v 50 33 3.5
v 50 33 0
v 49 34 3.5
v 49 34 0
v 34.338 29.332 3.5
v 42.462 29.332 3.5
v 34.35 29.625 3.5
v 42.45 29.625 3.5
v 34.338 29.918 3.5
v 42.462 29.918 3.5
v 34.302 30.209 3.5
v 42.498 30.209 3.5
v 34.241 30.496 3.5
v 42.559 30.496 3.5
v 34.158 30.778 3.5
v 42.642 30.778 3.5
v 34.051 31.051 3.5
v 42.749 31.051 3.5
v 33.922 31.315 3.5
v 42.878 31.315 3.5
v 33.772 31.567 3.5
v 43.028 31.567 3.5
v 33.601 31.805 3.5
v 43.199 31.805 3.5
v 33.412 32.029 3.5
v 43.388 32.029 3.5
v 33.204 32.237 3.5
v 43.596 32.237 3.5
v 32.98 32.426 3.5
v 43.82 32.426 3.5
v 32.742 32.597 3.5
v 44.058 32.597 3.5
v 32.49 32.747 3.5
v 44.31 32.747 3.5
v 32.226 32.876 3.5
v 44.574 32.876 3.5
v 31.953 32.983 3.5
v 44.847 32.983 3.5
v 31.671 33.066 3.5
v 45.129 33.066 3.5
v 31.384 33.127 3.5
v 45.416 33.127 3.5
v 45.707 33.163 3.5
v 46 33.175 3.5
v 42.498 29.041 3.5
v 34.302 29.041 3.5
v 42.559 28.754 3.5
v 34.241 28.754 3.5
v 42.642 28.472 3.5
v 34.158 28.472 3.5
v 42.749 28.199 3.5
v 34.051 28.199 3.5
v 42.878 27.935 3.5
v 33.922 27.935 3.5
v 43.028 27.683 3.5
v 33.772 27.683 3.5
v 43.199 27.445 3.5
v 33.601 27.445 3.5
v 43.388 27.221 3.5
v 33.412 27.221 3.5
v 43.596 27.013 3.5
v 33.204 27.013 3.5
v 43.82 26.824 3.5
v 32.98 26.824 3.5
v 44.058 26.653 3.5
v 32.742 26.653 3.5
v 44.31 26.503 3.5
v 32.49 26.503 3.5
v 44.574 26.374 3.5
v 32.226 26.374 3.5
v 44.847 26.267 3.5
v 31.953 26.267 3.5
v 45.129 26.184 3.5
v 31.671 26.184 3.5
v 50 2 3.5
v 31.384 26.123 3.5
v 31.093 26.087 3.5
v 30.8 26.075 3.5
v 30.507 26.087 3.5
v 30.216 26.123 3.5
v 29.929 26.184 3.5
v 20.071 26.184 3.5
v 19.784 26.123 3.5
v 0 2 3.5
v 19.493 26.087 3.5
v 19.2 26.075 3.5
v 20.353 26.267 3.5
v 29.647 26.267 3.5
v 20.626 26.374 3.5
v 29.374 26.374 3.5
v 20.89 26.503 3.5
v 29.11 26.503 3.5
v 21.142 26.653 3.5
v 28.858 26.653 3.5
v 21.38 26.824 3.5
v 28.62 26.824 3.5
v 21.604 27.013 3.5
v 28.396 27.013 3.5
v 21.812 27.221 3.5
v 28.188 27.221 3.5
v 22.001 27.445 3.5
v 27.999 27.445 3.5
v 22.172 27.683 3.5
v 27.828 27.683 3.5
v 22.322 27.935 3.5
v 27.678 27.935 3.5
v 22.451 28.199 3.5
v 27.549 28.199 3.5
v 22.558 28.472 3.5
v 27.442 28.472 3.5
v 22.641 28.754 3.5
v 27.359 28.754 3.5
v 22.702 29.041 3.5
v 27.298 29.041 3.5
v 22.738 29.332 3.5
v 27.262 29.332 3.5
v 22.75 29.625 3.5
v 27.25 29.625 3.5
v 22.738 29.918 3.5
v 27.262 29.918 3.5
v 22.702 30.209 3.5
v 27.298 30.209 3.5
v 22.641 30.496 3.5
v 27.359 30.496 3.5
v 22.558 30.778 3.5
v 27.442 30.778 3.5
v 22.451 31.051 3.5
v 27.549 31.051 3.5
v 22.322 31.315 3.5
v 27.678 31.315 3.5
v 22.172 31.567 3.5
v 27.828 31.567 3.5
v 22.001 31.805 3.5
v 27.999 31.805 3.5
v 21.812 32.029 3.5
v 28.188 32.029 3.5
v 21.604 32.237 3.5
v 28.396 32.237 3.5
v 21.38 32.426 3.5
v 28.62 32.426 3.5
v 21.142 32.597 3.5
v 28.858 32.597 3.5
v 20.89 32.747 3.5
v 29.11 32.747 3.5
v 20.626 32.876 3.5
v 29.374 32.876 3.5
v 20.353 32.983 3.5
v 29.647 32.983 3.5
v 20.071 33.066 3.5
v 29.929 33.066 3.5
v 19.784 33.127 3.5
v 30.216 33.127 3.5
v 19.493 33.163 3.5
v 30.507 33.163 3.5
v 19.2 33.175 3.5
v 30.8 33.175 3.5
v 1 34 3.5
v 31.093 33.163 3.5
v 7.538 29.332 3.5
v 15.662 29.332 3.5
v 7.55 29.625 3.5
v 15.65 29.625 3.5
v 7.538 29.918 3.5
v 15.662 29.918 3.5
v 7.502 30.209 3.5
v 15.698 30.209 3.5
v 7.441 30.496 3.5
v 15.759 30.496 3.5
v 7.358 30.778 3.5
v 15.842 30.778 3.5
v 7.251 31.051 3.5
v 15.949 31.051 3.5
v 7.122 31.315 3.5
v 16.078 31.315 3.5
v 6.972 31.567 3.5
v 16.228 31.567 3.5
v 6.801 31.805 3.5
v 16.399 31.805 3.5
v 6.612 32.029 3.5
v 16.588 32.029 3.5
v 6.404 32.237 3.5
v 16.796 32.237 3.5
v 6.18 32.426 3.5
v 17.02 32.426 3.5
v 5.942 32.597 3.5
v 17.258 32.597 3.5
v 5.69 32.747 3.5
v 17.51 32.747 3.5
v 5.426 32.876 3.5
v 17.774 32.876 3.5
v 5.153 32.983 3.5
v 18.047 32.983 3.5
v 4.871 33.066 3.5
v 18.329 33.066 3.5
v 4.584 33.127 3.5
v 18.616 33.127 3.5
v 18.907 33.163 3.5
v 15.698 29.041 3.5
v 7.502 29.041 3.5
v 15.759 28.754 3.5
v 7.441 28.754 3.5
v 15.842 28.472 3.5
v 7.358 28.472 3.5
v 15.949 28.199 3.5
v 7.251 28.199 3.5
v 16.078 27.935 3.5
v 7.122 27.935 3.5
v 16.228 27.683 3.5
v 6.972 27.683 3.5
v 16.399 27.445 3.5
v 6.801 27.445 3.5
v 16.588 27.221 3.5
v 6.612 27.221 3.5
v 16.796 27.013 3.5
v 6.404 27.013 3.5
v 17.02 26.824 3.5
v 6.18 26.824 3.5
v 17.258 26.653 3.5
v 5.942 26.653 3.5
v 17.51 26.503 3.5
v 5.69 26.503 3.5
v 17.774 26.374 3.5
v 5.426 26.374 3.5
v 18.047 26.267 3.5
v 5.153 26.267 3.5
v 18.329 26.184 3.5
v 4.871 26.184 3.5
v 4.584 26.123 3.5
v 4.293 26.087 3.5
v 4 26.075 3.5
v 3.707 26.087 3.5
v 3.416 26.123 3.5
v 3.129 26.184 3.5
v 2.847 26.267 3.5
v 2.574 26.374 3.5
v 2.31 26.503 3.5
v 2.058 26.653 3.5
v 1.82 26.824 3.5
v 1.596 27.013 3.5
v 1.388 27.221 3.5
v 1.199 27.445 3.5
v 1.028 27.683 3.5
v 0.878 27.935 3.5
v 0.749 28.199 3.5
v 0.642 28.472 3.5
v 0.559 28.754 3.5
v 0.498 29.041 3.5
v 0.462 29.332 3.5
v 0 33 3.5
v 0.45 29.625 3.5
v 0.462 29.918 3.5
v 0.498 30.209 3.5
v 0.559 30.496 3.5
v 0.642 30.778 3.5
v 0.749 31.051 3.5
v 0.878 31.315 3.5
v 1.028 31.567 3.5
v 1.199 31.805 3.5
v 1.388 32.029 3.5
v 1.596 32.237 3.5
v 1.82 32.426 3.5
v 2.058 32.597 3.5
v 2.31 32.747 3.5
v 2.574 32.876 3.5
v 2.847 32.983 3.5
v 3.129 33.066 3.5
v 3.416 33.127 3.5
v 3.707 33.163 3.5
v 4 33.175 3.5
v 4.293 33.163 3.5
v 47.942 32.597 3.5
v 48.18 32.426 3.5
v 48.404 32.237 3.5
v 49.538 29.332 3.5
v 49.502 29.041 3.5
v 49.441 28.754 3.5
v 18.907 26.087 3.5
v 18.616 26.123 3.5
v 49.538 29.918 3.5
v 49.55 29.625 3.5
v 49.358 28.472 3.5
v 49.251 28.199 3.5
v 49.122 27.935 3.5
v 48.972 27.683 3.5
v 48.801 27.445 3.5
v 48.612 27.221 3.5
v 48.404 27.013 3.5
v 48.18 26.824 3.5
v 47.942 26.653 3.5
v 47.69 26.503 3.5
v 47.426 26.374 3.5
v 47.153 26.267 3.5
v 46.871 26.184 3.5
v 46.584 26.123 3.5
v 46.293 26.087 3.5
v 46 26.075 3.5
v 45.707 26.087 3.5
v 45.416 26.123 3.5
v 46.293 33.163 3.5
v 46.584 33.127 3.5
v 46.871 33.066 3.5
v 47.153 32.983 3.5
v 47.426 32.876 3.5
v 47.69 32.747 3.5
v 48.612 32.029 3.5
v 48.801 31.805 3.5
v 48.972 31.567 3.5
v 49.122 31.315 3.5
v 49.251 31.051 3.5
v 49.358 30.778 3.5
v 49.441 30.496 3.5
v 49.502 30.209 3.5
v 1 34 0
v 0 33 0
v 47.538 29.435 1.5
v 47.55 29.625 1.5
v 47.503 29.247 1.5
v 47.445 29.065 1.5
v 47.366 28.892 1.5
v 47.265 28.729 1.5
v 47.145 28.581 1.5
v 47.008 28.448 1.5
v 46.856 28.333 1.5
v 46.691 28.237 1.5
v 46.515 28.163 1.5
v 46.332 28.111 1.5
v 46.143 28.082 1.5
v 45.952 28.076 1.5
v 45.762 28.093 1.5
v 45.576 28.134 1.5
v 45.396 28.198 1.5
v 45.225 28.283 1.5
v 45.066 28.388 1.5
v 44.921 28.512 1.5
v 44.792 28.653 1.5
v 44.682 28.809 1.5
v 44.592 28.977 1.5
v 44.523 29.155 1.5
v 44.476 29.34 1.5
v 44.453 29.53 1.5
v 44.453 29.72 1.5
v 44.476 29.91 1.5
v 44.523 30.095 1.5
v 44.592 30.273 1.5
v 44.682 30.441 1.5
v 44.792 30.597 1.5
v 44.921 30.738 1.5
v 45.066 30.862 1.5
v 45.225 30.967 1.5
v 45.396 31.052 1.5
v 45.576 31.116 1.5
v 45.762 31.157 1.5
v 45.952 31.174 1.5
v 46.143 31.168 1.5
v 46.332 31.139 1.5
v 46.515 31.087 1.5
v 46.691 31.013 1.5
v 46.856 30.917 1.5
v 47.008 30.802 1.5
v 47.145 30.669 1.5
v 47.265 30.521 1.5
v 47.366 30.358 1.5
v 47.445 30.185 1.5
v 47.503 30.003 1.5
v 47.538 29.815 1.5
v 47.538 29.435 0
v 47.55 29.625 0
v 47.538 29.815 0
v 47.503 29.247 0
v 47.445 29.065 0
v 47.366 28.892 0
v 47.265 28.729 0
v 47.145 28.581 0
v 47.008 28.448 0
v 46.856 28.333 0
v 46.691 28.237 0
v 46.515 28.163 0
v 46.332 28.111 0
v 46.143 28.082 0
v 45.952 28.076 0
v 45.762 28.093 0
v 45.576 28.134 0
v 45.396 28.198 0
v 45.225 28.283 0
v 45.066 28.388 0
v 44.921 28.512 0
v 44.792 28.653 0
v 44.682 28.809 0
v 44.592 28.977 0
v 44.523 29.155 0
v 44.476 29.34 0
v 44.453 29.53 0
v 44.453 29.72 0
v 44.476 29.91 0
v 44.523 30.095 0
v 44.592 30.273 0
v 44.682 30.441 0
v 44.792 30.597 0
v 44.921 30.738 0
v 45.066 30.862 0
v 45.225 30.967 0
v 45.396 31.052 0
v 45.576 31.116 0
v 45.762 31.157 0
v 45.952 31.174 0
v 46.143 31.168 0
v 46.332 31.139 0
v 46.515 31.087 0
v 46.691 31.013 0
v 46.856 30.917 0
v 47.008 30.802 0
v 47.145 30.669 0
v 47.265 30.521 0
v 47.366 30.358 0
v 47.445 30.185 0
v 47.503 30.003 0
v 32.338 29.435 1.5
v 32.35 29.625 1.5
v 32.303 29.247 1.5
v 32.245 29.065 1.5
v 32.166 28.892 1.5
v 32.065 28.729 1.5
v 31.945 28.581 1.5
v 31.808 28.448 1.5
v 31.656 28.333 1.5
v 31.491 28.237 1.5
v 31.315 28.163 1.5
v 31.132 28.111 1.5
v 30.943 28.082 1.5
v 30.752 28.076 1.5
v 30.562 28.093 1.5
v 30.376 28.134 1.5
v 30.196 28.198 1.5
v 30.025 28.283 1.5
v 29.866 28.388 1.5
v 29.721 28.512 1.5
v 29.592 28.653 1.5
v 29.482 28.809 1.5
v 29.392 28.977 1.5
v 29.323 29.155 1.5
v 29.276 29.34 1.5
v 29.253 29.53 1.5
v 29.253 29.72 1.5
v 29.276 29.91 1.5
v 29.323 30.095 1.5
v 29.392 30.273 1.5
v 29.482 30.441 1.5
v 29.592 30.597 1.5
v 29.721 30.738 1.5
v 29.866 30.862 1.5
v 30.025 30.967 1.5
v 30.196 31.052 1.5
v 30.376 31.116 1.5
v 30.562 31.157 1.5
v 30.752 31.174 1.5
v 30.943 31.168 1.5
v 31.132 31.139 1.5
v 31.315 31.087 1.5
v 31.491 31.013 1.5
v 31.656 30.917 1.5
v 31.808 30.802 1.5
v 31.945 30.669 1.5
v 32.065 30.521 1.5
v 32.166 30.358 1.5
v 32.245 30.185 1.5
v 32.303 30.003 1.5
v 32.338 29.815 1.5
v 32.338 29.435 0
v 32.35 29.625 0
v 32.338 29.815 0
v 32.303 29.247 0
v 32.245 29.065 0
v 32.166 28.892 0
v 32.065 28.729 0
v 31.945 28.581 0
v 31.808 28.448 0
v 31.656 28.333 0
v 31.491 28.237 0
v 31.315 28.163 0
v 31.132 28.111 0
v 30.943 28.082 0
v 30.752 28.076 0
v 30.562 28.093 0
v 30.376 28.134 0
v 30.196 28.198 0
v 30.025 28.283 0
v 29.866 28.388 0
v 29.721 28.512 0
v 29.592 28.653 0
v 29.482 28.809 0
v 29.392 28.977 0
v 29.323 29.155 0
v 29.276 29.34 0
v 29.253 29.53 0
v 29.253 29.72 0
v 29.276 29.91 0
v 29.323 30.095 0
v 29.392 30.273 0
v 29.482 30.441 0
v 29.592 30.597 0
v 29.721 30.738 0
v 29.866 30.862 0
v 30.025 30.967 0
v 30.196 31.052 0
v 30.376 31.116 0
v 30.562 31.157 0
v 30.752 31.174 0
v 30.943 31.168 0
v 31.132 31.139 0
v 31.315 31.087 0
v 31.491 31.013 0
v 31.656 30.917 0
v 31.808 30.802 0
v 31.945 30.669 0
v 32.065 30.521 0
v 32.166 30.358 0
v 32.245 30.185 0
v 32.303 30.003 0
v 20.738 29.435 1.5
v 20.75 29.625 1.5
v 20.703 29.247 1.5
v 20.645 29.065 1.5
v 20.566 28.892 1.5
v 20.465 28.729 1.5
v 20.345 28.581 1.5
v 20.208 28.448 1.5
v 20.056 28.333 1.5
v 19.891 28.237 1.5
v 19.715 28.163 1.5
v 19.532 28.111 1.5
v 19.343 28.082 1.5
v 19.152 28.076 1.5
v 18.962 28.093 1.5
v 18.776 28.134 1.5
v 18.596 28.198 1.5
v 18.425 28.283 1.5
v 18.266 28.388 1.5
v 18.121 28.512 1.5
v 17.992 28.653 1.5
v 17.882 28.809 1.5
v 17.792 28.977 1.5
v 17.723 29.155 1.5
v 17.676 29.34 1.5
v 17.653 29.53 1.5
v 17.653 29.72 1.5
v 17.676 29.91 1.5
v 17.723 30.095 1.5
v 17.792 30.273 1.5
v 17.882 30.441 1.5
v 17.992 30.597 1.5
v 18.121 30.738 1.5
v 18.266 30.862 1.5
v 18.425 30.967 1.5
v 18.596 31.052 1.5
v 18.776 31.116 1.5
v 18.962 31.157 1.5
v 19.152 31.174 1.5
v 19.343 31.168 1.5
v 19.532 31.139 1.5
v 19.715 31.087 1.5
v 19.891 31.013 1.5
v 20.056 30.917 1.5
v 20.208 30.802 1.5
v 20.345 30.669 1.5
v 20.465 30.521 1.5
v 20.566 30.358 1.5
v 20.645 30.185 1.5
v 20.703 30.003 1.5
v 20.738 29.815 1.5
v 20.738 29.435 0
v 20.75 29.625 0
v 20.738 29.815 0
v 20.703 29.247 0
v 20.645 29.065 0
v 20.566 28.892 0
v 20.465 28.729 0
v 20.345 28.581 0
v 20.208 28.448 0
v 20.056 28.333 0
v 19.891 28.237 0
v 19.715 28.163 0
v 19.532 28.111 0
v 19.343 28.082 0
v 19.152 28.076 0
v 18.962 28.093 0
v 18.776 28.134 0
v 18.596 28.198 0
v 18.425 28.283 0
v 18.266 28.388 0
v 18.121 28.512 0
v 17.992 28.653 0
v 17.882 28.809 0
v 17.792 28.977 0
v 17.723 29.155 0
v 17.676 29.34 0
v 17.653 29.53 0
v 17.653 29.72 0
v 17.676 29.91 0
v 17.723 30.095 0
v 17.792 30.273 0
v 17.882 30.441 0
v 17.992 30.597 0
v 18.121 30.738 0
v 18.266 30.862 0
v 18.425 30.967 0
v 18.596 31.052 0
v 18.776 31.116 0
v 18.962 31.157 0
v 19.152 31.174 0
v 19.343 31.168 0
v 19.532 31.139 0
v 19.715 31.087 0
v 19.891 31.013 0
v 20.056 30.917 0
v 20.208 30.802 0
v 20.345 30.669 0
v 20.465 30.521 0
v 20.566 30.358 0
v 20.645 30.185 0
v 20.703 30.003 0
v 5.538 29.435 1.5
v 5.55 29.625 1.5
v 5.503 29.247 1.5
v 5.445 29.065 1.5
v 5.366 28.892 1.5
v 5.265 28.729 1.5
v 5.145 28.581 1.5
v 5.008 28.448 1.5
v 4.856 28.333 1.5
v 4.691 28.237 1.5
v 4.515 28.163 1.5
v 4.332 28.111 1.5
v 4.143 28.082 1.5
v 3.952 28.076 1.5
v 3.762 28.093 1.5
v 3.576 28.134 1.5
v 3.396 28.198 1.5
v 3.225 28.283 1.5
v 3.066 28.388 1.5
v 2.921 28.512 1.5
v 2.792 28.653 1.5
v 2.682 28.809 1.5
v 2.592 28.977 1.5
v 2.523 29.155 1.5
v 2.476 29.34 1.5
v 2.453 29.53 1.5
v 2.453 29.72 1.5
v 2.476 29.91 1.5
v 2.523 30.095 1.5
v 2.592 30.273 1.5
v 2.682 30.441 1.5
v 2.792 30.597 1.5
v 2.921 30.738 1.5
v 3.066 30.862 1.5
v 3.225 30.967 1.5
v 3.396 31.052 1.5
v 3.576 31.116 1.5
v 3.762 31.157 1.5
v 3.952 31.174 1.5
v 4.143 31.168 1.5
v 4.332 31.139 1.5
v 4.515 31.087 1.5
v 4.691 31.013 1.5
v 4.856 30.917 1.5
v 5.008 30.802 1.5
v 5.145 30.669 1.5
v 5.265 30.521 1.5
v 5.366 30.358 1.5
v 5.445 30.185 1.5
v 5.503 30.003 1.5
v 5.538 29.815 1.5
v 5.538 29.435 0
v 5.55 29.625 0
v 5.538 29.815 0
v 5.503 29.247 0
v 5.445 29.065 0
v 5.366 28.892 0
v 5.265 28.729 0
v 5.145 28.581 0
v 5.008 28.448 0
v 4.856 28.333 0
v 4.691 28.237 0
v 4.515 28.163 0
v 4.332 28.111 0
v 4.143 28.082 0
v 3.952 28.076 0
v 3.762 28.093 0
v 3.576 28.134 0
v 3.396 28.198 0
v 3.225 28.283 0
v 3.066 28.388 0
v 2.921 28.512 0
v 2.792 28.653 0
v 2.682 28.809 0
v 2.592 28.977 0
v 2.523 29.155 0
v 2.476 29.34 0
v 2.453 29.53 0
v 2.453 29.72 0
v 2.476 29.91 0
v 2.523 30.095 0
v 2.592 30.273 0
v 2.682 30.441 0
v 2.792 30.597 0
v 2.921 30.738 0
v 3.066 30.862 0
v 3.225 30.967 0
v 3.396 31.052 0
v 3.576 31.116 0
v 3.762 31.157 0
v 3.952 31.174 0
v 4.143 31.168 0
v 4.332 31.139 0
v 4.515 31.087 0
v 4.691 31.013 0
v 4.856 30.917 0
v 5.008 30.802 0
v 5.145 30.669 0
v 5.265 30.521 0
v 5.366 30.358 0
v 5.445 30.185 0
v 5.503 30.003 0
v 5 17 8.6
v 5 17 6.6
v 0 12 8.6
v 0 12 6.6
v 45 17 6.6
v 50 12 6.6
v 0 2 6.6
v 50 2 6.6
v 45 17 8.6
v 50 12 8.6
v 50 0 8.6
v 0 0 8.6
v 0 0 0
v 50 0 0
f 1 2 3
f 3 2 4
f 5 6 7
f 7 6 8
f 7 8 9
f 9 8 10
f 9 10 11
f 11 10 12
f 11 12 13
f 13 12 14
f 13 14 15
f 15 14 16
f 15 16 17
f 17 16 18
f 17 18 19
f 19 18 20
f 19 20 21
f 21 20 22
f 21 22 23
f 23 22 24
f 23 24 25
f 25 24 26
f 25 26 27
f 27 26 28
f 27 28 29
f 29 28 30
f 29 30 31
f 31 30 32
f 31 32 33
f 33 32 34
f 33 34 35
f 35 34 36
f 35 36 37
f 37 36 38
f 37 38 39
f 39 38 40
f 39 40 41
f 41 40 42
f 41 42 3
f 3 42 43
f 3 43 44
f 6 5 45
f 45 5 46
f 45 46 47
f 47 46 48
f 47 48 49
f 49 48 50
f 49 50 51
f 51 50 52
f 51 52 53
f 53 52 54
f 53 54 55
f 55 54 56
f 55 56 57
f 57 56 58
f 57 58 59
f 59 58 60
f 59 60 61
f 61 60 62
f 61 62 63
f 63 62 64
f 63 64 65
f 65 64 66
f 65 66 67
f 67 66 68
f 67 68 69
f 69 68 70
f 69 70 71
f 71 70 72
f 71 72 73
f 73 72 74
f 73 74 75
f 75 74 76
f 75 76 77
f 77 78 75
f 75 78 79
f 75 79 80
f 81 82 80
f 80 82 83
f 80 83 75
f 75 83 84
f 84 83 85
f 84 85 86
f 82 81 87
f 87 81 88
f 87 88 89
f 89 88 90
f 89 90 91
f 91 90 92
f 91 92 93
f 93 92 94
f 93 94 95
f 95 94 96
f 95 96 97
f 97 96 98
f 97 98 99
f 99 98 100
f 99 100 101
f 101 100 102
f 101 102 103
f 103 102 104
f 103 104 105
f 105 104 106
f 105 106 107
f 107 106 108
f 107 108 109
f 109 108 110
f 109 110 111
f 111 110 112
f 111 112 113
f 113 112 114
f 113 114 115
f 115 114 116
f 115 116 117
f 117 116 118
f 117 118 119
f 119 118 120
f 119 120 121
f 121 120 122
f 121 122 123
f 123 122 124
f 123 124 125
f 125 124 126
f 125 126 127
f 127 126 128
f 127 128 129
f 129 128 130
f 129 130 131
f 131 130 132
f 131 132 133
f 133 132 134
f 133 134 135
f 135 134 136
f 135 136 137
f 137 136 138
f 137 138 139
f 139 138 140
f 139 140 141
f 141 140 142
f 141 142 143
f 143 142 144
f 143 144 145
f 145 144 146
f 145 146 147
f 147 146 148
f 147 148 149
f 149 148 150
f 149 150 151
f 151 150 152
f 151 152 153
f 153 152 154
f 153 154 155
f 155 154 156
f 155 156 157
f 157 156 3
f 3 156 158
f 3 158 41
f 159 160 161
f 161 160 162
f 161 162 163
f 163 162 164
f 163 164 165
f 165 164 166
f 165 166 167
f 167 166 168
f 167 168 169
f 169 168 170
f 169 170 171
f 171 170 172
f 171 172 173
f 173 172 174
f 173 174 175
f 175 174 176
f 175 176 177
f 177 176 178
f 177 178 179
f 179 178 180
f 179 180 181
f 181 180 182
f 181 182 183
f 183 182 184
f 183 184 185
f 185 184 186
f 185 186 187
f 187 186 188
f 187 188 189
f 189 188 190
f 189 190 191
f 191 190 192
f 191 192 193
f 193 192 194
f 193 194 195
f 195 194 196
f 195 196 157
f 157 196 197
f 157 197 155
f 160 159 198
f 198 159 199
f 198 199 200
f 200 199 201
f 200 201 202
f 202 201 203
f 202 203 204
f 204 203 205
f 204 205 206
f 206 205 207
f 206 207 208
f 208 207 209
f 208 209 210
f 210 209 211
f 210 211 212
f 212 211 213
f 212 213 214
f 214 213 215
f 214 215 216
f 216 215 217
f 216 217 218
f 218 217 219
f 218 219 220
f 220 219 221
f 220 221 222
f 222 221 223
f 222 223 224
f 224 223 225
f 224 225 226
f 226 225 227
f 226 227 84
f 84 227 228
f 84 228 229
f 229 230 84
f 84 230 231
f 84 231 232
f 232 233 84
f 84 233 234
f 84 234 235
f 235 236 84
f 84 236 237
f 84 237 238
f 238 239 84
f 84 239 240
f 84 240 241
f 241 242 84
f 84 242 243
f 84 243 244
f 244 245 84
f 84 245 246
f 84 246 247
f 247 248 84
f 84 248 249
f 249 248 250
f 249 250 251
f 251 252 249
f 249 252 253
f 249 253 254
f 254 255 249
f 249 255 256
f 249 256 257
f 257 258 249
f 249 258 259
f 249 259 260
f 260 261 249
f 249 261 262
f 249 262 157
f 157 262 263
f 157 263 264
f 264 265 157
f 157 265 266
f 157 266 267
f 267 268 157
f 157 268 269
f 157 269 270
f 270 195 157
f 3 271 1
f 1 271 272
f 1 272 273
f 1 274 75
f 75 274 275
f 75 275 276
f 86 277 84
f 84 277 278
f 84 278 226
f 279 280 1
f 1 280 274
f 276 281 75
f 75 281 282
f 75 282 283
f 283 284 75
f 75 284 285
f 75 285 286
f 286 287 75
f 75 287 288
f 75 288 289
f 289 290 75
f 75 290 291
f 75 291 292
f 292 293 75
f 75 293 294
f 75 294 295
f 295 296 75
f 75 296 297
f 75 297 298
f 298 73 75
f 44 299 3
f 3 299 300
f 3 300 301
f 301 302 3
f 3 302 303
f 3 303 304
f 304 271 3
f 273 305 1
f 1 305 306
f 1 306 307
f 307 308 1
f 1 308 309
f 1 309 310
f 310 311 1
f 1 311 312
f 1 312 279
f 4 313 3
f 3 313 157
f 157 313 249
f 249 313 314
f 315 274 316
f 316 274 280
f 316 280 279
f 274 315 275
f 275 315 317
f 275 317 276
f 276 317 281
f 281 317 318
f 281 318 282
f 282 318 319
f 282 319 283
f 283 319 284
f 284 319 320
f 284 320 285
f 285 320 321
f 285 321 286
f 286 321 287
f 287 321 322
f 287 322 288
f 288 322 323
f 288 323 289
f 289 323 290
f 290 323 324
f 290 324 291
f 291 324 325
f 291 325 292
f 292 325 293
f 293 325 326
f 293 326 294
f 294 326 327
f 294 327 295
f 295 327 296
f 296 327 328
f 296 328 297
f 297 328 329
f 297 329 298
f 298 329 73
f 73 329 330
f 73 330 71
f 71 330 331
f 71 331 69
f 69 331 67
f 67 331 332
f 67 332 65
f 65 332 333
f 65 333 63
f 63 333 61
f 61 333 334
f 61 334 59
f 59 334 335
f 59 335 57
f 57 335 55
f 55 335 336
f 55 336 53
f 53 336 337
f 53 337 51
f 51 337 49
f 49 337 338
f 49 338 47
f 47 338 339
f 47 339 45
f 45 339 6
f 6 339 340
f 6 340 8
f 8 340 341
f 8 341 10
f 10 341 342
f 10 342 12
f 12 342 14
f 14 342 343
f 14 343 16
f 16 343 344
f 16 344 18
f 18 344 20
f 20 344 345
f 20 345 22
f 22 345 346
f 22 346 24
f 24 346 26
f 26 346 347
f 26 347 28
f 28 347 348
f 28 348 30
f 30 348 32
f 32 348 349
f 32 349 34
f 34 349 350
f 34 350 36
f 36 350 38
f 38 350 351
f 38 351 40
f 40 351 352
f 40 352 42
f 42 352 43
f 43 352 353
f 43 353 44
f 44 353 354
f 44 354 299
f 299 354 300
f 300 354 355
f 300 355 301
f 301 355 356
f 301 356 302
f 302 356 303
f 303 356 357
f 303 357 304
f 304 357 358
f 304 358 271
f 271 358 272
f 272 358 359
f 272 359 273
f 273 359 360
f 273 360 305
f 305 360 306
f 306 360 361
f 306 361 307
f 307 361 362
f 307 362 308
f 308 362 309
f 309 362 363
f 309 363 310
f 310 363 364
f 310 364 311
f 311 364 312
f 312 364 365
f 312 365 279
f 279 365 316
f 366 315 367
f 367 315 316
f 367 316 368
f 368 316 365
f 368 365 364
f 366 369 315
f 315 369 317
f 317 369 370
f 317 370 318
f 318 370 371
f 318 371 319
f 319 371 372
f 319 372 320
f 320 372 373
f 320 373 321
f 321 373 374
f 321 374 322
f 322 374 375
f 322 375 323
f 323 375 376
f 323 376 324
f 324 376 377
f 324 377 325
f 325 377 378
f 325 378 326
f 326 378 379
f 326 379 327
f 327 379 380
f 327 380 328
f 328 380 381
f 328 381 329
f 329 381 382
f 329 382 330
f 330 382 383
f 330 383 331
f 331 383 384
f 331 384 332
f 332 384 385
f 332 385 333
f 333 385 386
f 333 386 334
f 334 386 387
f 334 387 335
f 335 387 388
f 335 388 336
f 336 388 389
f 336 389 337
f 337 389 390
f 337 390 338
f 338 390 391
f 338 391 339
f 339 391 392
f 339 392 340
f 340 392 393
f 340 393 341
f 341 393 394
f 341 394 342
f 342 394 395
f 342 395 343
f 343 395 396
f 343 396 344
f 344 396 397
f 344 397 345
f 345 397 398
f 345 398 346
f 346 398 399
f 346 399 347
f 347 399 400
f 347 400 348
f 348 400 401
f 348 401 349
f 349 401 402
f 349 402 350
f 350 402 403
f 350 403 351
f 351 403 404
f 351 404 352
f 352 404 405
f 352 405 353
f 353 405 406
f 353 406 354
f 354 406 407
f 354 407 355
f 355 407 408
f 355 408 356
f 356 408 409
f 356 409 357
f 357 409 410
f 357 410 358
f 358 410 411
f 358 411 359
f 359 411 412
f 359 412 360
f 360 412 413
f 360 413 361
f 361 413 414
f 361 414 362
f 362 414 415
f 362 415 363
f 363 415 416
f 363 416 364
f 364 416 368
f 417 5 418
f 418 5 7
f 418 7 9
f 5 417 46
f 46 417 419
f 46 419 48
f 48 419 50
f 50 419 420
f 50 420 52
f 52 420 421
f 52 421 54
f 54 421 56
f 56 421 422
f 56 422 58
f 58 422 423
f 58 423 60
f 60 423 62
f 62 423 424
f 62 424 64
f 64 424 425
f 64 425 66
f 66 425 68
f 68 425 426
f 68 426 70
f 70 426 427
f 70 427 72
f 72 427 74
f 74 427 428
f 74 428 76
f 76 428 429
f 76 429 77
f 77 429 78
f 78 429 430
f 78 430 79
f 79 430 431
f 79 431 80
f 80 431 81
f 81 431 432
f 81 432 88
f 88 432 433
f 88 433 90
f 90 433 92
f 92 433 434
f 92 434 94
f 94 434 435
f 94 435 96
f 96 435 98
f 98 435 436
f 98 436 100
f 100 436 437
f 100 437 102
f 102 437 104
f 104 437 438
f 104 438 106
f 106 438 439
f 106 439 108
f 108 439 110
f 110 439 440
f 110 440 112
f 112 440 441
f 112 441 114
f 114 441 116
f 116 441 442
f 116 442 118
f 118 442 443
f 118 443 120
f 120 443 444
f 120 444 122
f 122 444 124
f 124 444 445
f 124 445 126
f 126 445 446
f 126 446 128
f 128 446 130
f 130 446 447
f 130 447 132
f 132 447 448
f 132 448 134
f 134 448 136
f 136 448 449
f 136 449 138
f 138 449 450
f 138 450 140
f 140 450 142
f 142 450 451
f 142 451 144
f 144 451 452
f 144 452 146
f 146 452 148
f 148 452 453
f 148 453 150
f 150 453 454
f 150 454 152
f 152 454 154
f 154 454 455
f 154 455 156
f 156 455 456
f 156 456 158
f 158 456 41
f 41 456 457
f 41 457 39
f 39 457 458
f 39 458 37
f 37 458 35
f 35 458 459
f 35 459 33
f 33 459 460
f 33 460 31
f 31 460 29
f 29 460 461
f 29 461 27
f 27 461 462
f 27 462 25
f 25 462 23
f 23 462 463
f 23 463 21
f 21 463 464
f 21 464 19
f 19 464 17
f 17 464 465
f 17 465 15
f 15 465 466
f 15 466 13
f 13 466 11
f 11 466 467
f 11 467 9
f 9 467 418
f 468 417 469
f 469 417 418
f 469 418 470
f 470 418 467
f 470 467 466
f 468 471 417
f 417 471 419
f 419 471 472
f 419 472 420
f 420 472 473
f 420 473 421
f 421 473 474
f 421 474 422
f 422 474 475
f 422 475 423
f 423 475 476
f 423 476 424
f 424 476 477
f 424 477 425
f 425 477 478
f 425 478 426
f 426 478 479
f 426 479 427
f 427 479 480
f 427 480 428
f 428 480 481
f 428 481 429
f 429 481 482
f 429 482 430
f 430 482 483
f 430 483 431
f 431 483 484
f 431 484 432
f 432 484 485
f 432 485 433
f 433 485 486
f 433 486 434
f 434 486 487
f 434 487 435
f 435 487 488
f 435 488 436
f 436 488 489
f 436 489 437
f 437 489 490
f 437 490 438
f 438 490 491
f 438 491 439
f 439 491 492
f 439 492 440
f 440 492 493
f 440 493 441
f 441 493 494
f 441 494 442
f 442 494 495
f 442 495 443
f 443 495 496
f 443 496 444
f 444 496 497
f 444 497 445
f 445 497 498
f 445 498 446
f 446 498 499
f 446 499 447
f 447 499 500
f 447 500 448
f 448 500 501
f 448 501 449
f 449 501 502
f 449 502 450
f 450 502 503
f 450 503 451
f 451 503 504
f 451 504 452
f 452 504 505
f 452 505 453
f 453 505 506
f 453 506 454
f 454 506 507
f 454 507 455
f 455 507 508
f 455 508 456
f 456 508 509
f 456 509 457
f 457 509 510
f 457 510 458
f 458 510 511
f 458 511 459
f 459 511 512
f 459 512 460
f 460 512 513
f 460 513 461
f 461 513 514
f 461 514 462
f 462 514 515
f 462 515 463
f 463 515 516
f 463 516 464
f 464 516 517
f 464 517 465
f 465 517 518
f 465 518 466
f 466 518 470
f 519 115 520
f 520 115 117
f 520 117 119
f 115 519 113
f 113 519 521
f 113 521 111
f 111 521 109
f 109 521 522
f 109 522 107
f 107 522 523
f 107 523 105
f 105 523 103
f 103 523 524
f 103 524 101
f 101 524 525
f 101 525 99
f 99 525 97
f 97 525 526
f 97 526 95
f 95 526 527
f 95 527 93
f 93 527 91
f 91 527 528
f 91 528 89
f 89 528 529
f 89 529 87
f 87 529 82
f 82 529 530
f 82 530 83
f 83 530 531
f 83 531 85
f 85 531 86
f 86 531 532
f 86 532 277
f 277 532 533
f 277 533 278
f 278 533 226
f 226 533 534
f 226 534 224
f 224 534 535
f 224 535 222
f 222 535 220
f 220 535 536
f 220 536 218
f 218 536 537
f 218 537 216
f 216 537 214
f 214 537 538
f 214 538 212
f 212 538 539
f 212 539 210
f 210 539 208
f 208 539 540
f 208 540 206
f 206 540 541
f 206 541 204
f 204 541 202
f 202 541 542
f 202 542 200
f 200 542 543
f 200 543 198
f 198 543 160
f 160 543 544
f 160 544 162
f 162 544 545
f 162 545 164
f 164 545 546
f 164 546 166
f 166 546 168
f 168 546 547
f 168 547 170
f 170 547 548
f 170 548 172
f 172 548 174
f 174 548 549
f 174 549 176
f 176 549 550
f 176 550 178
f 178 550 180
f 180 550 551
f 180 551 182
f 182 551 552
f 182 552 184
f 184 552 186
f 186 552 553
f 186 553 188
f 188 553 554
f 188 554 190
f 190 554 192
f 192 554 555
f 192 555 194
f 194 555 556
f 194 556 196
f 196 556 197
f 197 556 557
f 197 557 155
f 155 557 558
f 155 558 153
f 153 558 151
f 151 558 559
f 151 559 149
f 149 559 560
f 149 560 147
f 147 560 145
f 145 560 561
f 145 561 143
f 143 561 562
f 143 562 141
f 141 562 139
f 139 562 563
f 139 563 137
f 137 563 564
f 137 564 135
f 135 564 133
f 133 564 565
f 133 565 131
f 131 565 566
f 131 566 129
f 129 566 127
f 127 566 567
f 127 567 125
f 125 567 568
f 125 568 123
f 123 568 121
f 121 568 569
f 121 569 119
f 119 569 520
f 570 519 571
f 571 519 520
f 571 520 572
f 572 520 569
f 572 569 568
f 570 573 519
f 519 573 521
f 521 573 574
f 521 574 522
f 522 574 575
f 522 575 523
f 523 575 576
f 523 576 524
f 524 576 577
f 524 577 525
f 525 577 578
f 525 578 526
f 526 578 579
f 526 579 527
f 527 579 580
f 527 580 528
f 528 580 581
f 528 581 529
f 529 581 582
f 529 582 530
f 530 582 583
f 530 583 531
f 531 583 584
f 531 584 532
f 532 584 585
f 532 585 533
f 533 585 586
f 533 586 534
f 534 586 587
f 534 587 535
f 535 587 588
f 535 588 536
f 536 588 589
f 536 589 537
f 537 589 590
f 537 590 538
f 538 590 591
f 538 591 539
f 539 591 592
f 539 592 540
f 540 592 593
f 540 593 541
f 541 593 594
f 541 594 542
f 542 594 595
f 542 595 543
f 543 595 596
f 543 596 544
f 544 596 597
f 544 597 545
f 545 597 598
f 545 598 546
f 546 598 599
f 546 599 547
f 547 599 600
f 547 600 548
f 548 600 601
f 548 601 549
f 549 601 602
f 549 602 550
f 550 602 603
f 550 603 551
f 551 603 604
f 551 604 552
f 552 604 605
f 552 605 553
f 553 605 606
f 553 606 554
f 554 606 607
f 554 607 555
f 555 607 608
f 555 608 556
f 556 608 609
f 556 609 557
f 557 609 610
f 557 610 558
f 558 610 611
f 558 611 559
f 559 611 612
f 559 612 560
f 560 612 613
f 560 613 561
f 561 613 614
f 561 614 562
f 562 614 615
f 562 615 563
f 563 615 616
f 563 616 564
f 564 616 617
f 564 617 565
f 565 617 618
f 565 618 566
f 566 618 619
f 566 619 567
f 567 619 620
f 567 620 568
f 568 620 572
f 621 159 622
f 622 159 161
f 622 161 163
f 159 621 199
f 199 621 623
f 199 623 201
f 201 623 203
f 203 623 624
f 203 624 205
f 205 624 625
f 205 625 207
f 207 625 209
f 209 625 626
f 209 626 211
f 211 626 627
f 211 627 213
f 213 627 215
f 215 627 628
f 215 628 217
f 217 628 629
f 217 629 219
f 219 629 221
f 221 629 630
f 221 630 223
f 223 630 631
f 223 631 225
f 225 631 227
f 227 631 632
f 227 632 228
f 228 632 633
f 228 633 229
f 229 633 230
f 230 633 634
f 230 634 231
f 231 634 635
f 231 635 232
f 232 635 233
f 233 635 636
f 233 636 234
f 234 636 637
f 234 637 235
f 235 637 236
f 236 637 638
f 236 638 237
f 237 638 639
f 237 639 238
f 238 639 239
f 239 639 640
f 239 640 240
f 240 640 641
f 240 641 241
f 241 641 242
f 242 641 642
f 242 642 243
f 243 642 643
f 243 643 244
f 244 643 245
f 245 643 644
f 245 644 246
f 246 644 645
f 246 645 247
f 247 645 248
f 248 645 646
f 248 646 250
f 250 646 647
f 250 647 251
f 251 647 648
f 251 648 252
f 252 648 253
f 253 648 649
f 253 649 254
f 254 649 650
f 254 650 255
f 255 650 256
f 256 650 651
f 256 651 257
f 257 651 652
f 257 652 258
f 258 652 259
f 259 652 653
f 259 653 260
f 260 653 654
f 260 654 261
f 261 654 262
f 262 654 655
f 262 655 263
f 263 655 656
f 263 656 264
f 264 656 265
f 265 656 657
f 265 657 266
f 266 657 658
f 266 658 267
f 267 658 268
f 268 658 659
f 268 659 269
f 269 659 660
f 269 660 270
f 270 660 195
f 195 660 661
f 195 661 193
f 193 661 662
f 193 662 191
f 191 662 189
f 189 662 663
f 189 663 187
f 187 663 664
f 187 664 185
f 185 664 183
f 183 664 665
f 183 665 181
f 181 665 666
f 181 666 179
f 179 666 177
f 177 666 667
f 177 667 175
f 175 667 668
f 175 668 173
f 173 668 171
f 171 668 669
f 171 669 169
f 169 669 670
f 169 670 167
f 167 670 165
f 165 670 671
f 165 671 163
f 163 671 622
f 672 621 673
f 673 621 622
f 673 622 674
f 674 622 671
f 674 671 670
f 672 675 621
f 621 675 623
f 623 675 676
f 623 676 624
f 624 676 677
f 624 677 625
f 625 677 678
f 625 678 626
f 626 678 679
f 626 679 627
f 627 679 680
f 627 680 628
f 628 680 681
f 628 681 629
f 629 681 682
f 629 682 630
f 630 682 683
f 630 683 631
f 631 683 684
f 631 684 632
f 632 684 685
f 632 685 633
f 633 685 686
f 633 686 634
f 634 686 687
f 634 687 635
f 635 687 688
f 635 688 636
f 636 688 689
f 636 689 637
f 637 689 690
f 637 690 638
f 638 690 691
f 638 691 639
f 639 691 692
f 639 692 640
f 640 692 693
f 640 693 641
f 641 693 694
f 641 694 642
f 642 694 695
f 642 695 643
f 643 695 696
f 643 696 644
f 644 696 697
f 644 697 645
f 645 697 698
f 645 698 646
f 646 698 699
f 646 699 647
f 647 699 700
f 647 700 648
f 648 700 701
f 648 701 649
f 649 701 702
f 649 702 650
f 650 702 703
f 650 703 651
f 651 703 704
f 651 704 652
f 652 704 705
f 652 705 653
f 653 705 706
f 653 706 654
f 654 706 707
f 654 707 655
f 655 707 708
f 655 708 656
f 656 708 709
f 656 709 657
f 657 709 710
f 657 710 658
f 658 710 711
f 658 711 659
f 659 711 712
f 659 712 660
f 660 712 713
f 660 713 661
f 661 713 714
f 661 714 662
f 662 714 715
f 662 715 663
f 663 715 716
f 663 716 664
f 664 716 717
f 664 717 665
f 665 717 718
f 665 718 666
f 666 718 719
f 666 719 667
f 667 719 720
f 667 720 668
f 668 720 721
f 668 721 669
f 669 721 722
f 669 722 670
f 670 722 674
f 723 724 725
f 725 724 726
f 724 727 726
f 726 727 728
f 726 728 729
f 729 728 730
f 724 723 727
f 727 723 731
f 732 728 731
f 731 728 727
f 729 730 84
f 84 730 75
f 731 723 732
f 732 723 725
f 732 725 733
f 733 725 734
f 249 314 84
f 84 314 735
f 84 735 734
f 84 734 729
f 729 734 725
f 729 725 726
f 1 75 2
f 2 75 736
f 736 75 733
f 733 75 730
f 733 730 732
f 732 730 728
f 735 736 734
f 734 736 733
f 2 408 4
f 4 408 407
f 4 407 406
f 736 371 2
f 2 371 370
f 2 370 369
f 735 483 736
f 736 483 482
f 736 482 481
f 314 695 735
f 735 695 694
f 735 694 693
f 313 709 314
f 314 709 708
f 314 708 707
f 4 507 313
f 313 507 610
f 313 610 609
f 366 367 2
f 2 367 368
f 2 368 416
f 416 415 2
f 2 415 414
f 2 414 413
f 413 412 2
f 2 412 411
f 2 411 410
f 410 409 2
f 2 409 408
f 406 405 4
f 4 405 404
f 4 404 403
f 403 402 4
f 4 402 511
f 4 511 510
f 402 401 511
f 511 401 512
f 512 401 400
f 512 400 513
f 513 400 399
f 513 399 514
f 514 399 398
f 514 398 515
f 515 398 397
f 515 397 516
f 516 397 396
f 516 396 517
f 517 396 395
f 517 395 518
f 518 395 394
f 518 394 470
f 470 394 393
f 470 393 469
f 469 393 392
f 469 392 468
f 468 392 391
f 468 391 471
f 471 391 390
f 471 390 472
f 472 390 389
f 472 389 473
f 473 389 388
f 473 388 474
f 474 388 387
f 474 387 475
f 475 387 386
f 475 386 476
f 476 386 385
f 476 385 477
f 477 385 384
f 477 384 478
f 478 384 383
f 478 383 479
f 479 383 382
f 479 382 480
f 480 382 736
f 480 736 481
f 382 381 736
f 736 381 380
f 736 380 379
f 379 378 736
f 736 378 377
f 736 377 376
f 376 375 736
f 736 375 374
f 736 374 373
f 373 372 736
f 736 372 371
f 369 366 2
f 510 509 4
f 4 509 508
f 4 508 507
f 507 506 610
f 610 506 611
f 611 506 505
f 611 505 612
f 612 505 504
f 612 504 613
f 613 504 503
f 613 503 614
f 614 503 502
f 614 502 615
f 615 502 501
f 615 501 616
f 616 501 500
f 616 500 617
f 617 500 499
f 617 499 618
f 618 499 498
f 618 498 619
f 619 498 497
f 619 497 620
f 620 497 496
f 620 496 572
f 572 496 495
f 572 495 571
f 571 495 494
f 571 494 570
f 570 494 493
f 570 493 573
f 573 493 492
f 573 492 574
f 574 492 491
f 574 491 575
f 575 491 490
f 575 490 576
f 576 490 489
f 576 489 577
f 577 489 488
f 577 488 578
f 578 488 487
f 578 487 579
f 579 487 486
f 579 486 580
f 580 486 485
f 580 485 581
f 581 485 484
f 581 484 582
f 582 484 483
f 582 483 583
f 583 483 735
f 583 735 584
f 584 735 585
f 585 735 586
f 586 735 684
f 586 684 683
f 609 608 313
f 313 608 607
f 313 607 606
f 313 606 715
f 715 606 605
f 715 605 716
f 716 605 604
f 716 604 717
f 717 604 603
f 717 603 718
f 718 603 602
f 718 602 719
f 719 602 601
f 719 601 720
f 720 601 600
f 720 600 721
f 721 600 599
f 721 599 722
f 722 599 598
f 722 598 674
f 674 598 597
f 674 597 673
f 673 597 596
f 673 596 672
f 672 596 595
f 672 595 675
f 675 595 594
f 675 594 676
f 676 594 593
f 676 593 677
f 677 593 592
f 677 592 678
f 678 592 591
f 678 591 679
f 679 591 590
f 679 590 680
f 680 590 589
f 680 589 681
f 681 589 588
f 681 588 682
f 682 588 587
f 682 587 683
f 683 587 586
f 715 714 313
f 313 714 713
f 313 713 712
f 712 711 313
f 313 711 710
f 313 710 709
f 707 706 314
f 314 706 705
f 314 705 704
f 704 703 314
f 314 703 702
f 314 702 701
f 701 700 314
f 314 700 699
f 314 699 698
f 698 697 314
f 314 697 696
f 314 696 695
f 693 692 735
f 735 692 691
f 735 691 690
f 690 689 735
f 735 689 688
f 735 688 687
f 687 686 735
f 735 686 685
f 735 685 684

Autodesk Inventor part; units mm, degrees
ref_plane "YZ Plane" through (0, 0, 0) normal (1, 0, 0) x (0, 1, 0)
ref_plane "XZ Plane" through (0, 0, 0) normal (0, 1, 0) x (-1, 0, 0)
ref_plane "XY Plane" through (0, 0, 0) normal (0, 0, 1) x (1, 0, 0)
sketch "Sketch1" plane through (0, 0, 0) normal (0, 0, 1) x (1, 0, 0)
  line L0 (0, 0) -> (50, 0)
  line L1 (50, 0) -> (50, 34)
  line L2 (50, 34) -> (0, 34)
  line L3 (0, 34) -> (0, 0)
  circle A0 centre (4, 29.625) radius 1.55
  circle A1 centre (19.2, 29.625) radius 1.55
  circle A2 centre (30.8, 29.625) radius 1.55
  circle A3 centre (46, 29.625) radius 1.55
  dimension "d0" = 50
  dimension "d1" = 34
  dimension "d2" = 4.375
  dimension "d3" = 4.375
  dimension "d4" = 4.375
  dimension "d5" = 4.375
  dimension "d6" = 15.2
  dimension "d7" = 15.2
  dimension "d8" = 34
  dimension "d9" = 4
  dimension "d10" = 4
  dimension "d11" = 3.1
  dimension "d12" = 3.1
  dimension "d13" = 3.1
  dimension "d14" = 3.1
extrude "Extrusion1" add sketch "Sketch1" along normal blind 3.5
sketch "Sketch2" plane through (0, 0, 3.5) normal (0, 0, 1) x (1, 0, 0)
  line L0 (0, 2) -> (50, 2)
  line L1 (50, 2) -> (50, 0)
  line L2 (50, 0) -> (0, 0)
  line L3 (0, 0) -> (0, 2)
  line L4 (0, 0) -> (50, 0) projected
  line L5 (0, 34) -> (0, 0) projected
  line L6 (50, 0) -> (50, 34) projected
  dimension "d17" = 2
extrude "Extrusion2" add sketch "Sketch2" along normal blind 5.1
sketch "Sketch3" plane through (0, 2, 3.5) normal (0, 1, 0) x (1, 0, 0)
  line L0 (0, -5.1) -> (50, -5.1)
  line L1 (50, -5.1) -> (50, -3.1)
  line L2 (50, -3.1) -> (0, -3.1)
  line L3 (0, -3.1) -> (0, -5.1)
  line L4 (0, 0) -> (0, -5.1) projected
  line L5 (50, 0) -> (50, -5.1) projected
  line L6 (50, -5.1) -> (0, -5.1) projected
  line L7 (50, 0) -> (0, 0) projected
  point P0 (0, 3.5)
  dimension "d20" = 3.1
extrude "Extrusion3" add sketch "Sketch3" along normal blind 15 contours L3 L2 L1 L0
chamfer "Chamfer1" distance 5 angle 45 2 edges at (50, 17, 7.6) (0, 17, 7.6)
chamfer "Chamfer2" distance 2 angle 45 4 edges at (2.45, 29.625, 3.5) (17.65, 29.625, 3.5) (29.25, 29.625, 3.5) (44.45, 29.625, 3.5)
chamfer "Chamfer3" distance 1 angle 45 2 edges at (0, 34, 1.75) (50, 34, 1.75)
properties part number "HX711MountingBracketv2"
